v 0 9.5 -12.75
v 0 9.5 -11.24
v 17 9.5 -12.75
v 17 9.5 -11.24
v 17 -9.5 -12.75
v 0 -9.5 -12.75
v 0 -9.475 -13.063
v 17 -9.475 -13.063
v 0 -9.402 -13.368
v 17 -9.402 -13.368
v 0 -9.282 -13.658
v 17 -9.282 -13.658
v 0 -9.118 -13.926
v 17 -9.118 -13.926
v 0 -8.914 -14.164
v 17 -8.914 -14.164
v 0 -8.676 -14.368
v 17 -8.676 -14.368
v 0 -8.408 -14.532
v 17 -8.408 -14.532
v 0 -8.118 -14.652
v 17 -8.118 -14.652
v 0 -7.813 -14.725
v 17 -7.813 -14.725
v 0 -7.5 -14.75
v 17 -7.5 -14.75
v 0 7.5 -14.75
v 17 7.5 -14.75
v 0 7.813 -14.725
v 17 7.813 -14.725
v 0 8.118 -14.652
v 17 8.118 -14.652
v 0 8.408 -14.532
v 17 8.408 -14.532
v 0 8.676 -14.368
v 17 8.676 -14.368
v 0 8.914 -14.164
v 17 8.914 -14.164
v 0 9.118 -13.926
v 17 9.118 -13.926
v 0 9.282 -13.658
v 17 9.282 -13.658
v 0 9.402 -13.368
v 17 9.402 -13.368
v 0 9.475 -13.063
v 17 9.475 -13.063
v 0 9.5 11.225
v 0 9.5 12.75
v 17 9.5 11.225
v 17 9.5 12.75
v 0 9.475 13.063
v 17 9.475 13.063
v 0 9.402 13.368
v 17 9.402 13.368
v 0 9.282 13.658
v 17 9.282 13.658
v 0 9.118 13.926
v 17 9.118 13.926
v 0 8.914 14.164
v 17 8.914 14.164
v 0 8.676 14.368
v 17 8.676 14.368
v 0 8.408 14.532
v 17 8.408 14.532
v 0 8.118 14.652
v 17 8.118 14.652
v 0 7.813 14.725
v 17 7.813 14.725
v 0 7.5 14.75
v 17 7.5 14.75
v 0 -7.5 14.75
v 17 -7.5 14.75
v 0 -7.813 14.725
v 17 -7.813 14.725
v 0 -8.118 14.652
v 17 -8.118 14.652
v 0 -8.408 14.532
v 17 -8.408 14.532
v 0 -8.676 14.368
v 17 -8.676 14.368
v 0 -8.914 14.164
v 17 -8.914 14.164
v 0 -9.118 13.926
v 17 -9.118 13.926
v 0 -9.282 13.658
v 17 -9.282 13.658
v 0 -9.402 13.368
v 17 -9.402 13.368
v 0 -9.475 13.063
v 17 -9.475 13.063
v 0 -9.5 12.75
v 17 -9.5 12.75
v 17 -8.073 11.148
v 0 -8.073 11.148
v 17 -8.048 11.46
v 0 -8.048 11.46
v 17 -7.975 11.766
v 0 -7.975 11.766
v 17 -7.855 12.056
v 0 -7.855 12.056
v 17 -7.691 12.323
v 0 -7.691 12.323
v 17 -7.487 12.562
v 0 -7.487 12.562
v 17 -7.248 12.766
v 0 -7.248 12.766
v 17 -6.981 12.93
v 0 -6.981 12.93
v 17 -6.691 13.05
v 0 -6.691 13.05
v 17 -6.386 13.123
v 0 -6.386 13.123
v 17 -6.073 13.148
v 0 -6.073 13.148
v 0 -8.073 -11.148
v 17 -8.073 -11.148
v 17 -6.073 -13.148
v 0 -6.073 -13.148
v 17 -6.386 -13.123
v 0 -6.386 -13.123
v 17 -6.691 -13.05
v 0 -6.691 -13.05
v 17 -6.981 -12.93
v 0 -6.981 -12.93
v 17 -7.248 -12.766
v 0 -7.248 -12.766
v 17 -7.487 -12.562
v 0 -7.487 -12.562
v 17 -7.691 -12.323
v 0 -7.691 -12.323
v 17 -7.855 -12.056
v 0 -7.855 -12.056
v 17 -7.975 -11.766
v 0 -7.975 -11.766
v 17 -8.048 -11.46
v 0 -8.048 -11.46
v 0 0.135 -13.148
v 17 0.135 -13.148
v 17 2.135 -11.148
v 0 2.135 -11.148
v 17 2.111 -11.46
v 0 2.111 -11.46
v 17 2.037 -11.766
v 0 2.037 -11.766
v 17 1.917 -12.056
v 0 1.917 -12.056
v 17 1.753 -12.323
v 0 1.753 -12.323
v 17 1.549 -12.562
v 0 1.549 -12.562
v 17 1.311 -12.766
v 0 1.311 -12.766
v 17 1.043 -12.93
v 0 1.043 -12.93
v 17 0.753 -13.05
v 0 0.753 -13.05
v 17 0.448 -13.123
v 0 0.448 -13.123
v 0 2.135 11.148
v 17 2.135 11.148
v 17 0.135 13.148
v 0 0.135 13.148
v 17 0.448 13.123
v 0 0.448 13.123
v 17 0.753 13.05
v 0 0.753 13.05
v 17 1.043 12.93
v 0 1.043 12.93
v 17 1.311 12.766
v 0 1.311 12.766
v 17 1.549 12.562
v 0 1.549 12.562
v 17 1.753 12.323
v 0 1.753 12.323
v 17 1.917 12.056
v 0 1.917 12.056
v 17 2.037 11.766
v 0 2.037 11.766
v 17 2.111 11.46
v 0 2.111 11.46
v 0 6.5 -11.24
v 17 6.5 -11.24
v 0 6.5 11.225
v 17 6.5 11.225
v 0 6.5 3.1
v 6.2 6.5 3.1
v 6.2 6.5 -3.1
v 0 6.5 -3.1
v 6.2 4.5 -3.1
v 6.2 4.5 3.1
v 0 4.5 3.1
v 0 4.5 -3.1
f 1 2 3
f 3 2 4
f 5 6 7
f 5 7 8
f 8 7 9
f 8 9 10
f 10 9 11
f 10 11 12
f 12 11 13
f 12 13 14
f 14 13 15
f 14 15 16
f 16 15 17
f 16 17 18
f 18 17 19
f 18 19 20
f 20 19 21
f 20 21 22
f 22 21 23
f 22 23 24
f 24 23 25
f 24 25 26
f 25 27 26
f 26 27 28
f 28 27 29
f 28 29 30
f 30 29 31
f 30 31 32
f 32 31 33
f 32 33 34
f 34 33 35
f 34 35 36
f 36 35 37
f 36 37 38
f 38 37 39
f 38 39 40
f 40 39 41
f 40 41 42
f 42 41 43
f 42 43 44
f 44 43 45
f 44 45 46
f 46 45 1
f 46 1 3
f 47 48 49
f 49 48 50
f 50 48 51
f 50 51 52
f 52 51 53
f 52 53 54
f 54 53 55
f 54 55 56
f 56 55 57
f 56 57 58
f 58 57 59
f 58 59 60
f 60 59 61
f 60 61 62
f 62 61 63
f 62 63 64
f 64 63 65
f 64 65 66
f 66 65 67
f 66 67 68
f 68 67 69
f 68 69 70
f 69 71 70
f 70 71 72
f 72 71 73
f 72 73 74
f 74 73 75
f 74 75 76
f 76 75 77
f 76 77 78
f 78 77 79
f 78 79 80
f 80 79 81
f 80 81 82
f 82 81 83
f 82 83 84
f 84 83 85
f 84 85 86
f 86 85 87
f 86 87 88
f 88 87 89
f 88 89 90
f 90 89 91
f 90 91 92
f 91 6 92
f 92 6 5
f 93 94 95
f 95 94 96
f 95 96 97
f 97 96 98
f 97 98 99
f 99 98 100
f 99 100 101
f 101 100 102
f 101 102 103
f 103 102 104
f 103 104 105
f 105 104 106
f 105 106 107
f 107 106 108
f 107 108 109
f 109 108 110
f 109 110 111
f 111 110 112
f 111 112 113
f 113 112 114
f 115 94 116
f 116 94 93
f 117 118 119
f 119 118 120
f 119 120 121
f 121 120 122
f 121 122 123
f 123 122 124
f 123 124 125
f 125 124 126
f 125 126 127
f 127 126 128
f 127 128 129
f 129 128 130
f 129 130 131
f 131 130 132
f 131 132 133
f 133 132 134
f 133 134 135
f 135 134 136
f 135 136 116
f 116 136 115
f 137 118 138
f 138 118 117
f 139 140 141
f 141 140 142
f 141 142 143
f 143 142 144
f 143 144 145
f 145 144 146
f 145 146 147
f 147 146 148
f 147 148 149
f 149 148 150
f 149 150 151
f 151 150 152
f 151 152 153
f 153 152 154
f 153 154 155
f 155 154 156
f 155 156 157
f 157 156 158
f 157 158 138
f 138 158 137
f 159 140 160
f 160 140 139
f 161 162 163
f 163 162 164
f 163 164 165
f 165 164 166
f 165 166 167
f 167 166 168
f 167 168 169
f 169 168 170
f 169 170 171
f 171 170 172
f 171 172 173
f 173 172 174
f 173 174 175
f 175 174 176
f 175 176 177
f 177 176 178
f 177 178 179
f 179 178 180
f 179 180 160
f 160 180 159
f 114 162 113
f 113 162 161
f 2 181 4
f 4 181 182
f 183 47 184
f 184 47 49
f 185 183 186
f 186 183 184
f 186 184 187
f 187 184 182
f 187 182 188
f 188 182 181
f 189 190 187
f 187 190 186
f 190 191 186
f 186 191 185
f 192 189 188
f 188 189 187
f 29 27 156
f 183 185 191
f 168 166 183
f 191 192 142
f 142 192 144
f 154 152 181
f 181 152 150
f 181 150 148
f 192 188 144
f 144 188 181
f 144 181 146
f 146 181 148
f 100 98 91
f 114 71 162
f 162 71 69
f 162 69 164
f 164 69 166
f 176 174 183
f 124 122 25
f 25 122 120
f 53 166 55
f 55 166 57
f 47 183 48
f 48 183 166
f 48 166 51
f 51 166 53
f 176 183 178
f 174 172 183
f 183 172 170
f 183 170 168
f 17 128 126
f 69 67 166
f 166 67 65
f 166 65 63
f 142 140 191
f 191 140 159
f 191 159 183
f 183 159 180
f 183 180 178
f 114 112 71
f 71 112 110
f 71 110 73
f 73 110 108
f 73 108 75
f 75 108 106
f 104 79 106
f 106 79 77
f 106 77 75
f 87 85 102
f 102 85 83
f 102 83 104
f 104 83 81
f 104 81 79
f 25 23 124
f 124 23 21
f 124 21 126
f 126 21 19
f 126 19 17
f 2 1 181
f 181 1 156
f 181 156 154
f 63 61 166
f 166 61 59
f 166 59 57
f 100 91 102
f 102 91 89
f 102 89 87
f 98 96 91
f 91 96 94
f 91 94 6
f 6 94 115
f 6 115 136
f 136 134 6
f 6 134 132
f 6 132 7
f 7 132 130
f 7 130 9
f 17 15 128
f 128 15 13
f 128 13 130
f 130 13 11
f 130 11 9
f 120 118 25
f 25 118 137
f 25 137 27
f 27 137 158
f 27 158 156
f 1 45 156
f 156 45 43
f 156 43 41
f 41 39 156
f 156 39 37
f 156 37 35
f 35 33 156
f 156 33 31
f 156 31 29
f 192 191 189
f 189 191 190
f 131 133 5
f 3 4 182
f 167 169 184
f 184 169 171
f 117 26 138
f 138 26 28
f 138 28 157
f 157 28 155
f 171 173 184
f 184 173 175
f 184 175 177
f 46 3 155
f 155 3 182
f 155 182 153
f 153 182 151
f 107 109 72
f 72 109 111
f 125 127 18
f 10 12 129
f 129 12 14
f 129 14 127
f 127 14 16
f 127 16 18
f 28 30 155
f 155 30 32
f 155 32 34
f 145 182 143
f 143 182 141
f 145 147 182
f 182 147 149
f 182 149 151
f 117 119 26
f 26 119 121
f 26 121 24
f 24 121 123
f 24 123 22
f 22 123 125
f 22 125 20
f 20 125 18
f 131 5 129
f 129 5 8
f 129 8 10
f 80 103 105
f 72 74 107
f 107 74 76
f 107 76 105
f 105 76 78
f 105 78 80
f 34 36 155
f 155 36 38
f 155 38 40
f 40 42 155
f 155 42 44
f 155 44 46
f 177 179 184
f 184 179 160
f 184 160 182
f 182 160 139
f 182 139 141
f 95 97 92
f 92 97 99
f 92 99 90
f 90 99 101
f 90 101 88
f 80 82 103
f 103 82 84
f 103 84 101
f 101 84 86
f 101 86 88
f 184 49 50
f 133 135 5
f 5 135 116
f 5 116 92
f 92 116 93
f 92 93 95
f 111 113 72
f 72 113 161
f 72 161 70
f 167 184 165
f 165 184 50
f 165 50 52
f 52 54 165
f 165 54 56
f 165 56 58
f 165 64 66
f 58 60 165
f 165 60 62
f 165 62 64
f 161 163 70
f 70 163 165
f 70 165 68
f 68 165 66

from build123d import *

# Parameters (mm, degrees)
BOSS_EXTRUDE1_DEPTH     = 21
SKETCH5_W               = 6.2
SKETCH5_H               = 6.2
CUT_EXTRUDE1_DEPTH      = 5
CUT_EXTRUDE2_DEPTH      = 28.364438602
CUT_EXTRUDE2_DEPTH_BACK = 28.364438602
SKETCH9_W               = 24.284850455
SKETCH9_H               = 22.464844075
CUT_EXTRUDE3_DEPTH      = 3
SKETCH10_W              = 31.815901763
SKETCH10_H              = 21.67332365
CUT_EXTRUDE4_DEPTH      = 4


with BuildPart() as part:
    # Sketch3 → Boss-Extrude1 (new body)
    with BuildSketch(Plane(origin=(0, 0, 0), x_dir=(0, 0, -1), z_dir=(1, 0, 0))):
        with BuildLine():
            Line((-12.75, -9.5), (12.75, -9.5))
            ThreePointArc((12.75, -9.5), (14.164213562, -8.914213562), (14.75, -7.5))
            Line((14.75, -7.5), (14.75, 7.5))
            ThreePointArc((14.75, 7.5), (14.164213562, 8.914213562), (12.75, 9.5))
            Line((12.75, 9.5), (-12.75, 9.5))
            ThreePointArc((-12.75, 9.5), (-14.164213562, 8.914213562), (-14.75, 7.5))
            Line((-14.75, 7.5), (-14.75, -7.5))
            ThreePointArc((-14.75, -7.5), (-14.164213562, -8.914213562), (-12.75, -9.5))
        make_face()
    extrude(amount=BOSS_EXTRUDE1_DEPTH)

    # Sketch5 → Cut-Extrude1 (cut)
    with BuildSketch(Plane(origin=(0, 9.5, 0), x_dir=(1, 0, 0), z_dir=(0, 1, 0))):
        with Locations((3.1, 0)):
            Rectangle(SKETCH5_W, SKETCH5_H)
    extrude(amount=-CUT_EXTRUDE1_DEPTH, mode=Mode.SUBTRACT)

    # Sketch7 → Cut-Extrude2 (cut, two sides: drawn at the far end of the back side and taken through both)
    with BuildSketch(Plane.ZY.offset(-CUT_EXTRUDE2_DEPTH_BACK)):
        with BuildLine():
            Line((-11.147623693, -8.072928754), (11.147623693, -8.072928754))
            ThreePointArc((11.147623693, -8.072928754), (12.561837255, -7.487142316), (13.147623693, -6.072928754))
            Line((13.147623693, -6.072928754), (13.147623693, 0.135263404))
            ThreePointArc((13.147623693, 0.135263404), (12.561837255, 1.549476966), (11.147623693, 2.135263404))
            Line((11.147623693, 2.135263404), (-11.147623693, 2.135263404))
            ThreePointArc((-11.147623693, 2.135263404), (-12.561837255, 1.549476966), (-13.147623693, 0.135263404))
            Line((-13.147623693, 0.135263404), (-13.147623693, -6.072928754))
            ThreePointArc((-13.147623693, -6.072928754), (-12.561837255, -7.487142316), (-11.147623693, -8.072928754))
        make_face()
    extrude(amount=CUT_EXTRUDE2_DEPTH + CUT_EXTRUDE2_DEPTH_BACK, mode=Mode.SUBTRACT)

    # Sketch9 → Cut-Extrude3 (cut)
    with BuildSketch(Plane(origin=(0, 9.5, 0), x_dir=(1, 0, 0), z_dir=(0, 1, 0))):
        with Locations((12.142425228, 0.007615305)):
            Rectangle(SKETCH9_W, SKETCH9_H)
    extrude(amount=-CUT_EXTRUDE3_DEPTH, mode=Mode.SUBTRACT)

    # Sketch10 → Cut-Extrude4 (cut)
    with BuildSketch(Plane(origin=(21, 0, 0), x_dir=(0, 0, -1), z_dir=(1, 0, 0))):
        with Locations((-0.011194899, 0.447795943)):
            Rectangle(SKETCH10_W, SKETCH10_H)
    extrude(amount=-CUT_EXTRUDE4_DEPTH, mode=Mode.SUBTRACT)


solid = part.part
